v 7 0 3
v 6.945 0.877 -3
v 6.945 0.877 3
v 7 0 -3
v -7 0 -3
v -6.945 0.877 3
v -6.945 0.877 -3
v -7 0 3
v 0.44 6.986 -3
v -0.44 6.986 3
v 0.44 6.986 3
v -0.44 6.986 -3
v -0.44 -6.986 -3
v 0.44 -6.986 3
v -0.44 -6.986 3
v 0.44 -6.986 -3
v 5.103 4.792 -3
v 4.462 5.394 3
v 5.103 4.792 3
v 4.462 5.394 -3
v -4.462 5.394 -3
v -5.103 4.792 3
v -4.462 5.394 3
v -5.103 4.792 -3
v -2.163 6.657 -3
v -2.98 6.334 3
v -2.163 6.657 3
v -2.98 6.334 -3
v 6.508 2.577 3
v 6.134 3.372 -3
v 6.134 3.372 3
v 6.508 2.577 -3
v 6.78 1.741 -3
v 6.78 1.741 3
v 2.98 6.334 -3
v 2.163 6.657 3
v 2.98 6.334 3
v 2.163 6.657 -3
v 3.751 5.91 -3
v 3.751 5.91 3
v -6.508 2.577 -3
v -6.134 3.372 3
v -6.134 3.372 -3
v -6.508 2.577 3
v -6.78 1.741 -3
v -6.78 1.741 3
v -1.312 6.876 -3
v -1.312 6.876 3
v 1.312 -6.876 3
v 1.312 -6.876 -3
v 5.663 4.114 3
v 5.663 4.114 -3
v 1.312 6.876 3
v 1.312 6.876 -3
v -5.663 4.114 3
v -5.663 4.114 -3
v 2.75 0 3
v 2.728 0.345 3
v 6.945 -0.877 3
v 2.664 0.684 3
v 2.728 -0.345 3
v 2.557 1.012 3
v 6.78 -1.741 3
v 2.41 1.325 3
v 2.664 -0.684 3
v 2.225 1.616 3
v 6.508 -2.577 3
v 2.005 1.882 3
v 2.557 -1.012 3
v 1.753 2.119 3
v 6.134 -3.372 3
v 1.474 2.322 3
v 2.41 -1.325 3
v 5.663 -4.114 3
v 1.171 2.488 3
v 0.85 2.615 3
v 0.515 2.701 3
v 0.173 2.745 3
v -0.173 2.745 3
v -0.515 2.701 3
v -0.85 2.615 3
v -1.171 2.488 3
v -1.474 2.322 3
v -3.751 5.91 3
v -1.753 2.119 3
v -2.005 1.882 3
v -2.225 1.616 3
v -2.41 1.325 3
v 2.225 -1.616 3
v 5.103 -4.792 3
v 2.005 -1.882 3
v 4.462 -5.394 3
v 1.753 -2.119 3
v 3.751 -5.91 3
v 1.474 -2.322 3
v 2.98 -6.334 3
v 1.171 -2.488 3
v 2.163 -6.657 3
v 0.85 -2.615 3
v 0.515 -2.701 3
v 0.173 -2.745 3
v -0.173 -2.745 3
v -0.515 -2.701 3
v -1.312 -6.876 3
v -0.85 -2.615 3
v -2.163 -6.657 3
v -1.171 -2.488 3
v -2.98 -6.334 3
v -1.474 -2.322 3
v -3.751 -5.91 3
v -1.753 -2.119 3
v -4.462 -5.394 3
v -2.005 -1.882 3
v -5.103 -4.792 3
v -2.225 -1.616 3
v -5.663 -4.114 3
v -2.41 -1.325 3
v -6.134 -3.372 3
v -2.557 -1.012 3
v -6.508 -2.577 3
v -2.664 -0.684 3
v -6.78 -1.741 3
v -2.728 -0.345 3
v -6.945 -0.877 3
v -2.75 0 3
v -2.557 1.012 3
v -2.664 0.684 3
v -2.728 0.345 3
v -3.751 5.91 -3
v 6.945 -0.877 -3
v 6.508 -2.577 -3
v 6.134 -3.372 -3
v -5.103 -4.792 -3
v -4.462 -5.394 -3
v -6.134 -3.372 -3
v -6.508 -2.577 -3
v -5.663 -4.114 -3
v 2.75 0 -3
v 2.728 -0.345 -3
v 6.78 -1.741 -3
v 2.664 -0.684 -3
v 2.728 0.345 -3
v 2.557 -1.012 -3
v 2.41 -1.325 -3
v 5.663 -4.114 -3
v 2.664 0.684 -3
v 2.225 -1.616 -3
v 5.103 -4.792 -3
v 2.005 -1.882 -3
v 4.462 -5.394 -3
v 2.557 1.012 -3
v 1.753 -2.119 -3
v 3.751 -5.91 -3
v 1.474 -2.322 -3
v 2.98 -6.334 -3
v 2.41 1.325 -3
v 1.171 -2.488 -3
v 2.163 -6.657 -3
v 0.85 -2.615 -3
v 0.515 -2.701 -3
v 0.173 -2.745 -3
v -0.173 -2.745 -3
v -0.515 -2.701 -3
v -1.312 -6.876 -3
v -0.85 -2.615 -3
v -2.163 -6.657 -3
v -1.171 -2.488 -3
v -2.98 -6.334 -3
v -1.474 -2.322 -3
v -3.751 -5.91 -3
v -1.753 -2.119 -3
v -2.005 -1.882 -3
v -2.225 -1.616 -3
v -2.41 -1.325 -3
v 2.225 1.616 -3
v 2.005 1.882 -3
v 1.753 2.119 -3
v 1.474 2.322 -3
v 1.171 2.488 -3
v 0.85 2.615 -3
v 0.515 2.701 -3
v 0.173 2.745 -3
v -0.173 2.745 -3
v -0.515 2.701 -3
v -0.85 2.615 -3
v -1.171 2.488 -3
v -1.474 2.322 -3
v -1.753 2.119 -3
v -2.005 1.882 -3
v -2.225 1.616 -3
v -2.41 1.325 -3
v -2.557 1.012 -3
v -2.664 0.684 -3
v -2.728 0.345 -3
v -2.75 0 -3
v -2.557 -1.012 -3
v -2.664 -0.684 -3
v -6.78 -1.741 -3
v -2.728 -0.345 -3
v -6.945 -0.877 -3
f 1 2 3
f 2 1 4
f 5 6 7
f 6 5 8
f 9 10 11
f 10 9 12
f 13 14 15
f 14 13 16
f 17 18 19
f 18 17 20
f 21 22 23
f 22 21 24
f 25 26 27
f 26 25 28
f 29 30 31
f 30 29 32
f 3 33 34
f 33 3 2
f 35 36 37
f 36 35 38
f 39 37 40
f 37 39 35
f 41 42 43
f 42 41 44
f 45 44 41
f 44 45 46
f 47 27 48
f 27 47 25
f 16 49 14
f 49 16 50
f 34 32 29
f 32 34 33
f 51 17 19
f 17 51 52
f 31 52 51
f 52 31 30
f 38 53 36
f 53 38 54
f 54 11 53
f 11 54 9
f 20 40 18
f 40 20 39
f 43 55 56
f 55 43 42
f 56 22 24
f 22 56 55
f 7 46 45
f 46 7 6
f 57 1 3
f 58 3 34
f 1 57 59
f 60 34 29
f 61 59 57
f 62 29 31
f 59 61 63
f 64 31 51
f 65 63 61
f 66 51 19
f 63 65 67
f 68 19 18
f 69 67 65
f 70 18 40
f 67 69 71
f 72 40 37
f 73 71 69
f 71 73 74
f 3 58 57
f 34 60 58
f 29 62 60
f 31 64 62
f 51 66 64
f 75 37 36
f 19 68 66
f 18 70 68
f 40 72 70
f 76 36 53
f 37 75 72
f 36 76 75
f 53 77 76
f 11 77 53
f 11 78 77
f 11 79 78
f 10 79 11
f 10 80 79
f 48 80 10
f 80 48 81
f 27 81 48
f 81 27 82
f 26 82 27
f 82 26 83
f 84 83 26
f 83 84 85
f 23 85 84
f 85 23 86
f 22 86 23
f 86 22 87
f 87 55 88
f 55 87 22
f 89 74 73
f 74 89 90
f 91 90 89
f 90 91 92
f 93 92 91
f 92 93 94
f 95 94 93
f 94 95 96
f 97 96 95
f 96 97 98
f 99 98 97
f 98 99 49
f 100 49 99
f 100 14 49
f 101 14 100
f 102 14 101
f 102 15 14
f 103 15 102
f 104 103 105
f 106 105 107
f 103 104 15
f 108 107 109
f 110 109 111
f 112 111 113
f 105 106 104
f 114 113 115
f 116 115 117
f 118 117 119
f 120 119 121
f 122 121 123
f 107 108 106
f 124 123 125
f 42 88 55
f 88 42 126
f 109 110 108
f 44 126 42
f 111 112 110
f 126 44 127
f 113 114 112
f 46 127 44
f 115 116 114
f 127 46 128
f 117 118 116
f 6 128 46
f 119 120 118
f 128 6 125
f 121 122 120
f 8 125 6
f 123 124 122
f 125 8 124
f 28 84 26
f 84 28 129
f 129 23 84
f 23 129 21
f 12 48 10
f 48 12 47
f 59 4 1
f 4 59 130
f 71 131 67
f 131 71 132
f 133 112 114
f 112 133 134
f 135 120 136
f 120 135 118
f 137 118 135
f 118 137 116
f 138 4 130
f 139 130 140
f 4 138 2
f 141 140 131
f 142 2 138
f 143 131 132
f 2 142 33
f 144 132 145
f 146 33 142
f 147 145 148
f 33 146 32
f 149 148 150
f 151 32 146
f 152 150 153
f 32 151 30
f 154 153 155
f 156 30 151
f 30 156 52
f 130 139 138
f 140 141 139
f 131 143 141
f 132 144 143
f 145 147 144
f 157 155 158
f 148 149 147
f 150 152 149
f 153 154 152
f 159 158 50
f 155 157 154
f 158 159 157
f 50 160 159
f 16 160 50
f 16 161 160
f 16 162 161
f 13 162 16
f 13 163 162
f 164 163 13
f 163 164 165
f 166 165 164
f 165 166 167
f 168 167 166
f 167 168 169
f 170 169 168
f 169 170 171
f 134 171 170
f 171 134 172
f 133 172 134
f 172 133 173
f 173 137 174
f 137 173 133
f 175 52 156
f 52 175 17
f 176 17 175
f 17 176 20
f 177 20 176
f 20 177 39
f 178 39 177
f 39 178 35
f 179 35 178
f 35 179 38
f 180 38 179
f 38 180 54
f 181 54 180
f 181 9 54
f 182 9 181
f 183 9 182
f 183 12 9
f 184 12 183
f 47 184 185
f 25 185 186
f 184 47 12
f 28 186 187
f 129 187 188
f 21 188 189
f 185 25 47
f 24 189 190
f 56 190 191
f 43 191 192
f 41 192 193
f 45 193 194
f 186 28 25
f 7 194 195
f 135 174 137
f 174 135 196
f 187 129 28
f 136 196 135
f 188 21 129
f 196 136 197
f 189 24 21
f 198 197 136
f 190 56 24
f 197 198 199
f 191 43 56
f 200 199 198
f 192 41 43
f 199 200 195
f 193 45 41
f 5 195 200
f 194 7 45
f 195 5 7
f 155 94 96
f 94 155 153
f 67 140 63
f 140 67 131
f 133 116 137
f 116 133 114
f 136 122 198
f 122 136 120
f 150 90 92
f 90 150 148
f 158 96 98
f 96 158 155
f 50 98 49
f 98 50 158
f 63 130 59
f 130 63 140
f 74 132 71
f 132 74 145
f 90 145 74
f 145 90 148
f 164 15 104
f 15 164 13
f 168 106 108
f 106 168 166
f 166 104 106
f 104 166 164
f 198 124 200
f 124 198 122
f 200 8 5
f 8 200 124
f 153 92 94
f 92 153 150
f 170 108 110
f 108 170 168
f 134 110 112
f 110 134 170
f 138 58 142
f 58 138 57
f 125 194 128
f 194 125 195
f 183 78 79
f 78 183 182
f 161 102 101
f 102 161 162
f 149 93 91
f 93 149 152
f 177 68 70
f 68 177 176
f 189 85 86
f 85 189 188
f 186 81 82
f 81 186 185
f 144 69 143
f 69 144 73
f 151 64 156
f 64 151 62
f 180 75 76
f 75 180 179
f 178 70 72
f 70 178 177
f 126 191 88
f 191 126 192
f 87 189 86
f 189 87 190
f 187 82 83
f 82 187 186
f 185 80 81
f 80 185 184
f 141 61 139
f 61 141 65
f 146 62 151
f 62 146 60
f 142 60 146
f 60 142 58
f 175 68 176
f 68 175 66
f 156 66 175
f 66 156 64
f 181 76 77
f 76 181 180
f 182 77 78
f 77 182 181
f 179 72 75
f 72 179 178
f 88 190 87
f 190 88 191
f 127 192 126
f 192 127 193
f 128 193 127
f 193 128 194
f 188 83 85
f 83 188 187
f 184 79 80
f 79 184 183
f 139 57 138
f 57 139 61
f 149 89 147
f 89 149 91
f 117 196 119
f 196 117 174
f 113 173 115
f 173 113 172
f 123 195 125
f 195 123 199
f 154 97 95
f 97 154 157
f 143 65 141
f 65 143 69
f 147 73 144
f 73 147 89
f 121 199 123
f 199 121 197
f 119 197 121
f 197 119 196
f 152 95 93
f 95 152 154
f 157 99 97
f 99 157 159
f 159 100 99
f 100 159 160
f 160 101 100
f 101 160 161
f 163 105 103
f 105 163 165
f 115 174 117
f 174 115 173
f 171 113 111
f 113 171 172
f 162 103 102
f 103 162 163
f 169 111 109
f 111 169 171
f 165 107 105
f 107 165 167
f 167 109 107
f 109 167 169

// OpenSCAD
$fn = 50;


difference() {
	union() {
		translate(v = [0, 0, -3.0000000000]) {
			cylinder(h = 6, r = 7.0000000000);
		}
	}
	union() {
		translate(v = [0, 0, -100.0000000000]) {
			cylinder(h = 200, r = 2.7500000000);
		}
	}
}
